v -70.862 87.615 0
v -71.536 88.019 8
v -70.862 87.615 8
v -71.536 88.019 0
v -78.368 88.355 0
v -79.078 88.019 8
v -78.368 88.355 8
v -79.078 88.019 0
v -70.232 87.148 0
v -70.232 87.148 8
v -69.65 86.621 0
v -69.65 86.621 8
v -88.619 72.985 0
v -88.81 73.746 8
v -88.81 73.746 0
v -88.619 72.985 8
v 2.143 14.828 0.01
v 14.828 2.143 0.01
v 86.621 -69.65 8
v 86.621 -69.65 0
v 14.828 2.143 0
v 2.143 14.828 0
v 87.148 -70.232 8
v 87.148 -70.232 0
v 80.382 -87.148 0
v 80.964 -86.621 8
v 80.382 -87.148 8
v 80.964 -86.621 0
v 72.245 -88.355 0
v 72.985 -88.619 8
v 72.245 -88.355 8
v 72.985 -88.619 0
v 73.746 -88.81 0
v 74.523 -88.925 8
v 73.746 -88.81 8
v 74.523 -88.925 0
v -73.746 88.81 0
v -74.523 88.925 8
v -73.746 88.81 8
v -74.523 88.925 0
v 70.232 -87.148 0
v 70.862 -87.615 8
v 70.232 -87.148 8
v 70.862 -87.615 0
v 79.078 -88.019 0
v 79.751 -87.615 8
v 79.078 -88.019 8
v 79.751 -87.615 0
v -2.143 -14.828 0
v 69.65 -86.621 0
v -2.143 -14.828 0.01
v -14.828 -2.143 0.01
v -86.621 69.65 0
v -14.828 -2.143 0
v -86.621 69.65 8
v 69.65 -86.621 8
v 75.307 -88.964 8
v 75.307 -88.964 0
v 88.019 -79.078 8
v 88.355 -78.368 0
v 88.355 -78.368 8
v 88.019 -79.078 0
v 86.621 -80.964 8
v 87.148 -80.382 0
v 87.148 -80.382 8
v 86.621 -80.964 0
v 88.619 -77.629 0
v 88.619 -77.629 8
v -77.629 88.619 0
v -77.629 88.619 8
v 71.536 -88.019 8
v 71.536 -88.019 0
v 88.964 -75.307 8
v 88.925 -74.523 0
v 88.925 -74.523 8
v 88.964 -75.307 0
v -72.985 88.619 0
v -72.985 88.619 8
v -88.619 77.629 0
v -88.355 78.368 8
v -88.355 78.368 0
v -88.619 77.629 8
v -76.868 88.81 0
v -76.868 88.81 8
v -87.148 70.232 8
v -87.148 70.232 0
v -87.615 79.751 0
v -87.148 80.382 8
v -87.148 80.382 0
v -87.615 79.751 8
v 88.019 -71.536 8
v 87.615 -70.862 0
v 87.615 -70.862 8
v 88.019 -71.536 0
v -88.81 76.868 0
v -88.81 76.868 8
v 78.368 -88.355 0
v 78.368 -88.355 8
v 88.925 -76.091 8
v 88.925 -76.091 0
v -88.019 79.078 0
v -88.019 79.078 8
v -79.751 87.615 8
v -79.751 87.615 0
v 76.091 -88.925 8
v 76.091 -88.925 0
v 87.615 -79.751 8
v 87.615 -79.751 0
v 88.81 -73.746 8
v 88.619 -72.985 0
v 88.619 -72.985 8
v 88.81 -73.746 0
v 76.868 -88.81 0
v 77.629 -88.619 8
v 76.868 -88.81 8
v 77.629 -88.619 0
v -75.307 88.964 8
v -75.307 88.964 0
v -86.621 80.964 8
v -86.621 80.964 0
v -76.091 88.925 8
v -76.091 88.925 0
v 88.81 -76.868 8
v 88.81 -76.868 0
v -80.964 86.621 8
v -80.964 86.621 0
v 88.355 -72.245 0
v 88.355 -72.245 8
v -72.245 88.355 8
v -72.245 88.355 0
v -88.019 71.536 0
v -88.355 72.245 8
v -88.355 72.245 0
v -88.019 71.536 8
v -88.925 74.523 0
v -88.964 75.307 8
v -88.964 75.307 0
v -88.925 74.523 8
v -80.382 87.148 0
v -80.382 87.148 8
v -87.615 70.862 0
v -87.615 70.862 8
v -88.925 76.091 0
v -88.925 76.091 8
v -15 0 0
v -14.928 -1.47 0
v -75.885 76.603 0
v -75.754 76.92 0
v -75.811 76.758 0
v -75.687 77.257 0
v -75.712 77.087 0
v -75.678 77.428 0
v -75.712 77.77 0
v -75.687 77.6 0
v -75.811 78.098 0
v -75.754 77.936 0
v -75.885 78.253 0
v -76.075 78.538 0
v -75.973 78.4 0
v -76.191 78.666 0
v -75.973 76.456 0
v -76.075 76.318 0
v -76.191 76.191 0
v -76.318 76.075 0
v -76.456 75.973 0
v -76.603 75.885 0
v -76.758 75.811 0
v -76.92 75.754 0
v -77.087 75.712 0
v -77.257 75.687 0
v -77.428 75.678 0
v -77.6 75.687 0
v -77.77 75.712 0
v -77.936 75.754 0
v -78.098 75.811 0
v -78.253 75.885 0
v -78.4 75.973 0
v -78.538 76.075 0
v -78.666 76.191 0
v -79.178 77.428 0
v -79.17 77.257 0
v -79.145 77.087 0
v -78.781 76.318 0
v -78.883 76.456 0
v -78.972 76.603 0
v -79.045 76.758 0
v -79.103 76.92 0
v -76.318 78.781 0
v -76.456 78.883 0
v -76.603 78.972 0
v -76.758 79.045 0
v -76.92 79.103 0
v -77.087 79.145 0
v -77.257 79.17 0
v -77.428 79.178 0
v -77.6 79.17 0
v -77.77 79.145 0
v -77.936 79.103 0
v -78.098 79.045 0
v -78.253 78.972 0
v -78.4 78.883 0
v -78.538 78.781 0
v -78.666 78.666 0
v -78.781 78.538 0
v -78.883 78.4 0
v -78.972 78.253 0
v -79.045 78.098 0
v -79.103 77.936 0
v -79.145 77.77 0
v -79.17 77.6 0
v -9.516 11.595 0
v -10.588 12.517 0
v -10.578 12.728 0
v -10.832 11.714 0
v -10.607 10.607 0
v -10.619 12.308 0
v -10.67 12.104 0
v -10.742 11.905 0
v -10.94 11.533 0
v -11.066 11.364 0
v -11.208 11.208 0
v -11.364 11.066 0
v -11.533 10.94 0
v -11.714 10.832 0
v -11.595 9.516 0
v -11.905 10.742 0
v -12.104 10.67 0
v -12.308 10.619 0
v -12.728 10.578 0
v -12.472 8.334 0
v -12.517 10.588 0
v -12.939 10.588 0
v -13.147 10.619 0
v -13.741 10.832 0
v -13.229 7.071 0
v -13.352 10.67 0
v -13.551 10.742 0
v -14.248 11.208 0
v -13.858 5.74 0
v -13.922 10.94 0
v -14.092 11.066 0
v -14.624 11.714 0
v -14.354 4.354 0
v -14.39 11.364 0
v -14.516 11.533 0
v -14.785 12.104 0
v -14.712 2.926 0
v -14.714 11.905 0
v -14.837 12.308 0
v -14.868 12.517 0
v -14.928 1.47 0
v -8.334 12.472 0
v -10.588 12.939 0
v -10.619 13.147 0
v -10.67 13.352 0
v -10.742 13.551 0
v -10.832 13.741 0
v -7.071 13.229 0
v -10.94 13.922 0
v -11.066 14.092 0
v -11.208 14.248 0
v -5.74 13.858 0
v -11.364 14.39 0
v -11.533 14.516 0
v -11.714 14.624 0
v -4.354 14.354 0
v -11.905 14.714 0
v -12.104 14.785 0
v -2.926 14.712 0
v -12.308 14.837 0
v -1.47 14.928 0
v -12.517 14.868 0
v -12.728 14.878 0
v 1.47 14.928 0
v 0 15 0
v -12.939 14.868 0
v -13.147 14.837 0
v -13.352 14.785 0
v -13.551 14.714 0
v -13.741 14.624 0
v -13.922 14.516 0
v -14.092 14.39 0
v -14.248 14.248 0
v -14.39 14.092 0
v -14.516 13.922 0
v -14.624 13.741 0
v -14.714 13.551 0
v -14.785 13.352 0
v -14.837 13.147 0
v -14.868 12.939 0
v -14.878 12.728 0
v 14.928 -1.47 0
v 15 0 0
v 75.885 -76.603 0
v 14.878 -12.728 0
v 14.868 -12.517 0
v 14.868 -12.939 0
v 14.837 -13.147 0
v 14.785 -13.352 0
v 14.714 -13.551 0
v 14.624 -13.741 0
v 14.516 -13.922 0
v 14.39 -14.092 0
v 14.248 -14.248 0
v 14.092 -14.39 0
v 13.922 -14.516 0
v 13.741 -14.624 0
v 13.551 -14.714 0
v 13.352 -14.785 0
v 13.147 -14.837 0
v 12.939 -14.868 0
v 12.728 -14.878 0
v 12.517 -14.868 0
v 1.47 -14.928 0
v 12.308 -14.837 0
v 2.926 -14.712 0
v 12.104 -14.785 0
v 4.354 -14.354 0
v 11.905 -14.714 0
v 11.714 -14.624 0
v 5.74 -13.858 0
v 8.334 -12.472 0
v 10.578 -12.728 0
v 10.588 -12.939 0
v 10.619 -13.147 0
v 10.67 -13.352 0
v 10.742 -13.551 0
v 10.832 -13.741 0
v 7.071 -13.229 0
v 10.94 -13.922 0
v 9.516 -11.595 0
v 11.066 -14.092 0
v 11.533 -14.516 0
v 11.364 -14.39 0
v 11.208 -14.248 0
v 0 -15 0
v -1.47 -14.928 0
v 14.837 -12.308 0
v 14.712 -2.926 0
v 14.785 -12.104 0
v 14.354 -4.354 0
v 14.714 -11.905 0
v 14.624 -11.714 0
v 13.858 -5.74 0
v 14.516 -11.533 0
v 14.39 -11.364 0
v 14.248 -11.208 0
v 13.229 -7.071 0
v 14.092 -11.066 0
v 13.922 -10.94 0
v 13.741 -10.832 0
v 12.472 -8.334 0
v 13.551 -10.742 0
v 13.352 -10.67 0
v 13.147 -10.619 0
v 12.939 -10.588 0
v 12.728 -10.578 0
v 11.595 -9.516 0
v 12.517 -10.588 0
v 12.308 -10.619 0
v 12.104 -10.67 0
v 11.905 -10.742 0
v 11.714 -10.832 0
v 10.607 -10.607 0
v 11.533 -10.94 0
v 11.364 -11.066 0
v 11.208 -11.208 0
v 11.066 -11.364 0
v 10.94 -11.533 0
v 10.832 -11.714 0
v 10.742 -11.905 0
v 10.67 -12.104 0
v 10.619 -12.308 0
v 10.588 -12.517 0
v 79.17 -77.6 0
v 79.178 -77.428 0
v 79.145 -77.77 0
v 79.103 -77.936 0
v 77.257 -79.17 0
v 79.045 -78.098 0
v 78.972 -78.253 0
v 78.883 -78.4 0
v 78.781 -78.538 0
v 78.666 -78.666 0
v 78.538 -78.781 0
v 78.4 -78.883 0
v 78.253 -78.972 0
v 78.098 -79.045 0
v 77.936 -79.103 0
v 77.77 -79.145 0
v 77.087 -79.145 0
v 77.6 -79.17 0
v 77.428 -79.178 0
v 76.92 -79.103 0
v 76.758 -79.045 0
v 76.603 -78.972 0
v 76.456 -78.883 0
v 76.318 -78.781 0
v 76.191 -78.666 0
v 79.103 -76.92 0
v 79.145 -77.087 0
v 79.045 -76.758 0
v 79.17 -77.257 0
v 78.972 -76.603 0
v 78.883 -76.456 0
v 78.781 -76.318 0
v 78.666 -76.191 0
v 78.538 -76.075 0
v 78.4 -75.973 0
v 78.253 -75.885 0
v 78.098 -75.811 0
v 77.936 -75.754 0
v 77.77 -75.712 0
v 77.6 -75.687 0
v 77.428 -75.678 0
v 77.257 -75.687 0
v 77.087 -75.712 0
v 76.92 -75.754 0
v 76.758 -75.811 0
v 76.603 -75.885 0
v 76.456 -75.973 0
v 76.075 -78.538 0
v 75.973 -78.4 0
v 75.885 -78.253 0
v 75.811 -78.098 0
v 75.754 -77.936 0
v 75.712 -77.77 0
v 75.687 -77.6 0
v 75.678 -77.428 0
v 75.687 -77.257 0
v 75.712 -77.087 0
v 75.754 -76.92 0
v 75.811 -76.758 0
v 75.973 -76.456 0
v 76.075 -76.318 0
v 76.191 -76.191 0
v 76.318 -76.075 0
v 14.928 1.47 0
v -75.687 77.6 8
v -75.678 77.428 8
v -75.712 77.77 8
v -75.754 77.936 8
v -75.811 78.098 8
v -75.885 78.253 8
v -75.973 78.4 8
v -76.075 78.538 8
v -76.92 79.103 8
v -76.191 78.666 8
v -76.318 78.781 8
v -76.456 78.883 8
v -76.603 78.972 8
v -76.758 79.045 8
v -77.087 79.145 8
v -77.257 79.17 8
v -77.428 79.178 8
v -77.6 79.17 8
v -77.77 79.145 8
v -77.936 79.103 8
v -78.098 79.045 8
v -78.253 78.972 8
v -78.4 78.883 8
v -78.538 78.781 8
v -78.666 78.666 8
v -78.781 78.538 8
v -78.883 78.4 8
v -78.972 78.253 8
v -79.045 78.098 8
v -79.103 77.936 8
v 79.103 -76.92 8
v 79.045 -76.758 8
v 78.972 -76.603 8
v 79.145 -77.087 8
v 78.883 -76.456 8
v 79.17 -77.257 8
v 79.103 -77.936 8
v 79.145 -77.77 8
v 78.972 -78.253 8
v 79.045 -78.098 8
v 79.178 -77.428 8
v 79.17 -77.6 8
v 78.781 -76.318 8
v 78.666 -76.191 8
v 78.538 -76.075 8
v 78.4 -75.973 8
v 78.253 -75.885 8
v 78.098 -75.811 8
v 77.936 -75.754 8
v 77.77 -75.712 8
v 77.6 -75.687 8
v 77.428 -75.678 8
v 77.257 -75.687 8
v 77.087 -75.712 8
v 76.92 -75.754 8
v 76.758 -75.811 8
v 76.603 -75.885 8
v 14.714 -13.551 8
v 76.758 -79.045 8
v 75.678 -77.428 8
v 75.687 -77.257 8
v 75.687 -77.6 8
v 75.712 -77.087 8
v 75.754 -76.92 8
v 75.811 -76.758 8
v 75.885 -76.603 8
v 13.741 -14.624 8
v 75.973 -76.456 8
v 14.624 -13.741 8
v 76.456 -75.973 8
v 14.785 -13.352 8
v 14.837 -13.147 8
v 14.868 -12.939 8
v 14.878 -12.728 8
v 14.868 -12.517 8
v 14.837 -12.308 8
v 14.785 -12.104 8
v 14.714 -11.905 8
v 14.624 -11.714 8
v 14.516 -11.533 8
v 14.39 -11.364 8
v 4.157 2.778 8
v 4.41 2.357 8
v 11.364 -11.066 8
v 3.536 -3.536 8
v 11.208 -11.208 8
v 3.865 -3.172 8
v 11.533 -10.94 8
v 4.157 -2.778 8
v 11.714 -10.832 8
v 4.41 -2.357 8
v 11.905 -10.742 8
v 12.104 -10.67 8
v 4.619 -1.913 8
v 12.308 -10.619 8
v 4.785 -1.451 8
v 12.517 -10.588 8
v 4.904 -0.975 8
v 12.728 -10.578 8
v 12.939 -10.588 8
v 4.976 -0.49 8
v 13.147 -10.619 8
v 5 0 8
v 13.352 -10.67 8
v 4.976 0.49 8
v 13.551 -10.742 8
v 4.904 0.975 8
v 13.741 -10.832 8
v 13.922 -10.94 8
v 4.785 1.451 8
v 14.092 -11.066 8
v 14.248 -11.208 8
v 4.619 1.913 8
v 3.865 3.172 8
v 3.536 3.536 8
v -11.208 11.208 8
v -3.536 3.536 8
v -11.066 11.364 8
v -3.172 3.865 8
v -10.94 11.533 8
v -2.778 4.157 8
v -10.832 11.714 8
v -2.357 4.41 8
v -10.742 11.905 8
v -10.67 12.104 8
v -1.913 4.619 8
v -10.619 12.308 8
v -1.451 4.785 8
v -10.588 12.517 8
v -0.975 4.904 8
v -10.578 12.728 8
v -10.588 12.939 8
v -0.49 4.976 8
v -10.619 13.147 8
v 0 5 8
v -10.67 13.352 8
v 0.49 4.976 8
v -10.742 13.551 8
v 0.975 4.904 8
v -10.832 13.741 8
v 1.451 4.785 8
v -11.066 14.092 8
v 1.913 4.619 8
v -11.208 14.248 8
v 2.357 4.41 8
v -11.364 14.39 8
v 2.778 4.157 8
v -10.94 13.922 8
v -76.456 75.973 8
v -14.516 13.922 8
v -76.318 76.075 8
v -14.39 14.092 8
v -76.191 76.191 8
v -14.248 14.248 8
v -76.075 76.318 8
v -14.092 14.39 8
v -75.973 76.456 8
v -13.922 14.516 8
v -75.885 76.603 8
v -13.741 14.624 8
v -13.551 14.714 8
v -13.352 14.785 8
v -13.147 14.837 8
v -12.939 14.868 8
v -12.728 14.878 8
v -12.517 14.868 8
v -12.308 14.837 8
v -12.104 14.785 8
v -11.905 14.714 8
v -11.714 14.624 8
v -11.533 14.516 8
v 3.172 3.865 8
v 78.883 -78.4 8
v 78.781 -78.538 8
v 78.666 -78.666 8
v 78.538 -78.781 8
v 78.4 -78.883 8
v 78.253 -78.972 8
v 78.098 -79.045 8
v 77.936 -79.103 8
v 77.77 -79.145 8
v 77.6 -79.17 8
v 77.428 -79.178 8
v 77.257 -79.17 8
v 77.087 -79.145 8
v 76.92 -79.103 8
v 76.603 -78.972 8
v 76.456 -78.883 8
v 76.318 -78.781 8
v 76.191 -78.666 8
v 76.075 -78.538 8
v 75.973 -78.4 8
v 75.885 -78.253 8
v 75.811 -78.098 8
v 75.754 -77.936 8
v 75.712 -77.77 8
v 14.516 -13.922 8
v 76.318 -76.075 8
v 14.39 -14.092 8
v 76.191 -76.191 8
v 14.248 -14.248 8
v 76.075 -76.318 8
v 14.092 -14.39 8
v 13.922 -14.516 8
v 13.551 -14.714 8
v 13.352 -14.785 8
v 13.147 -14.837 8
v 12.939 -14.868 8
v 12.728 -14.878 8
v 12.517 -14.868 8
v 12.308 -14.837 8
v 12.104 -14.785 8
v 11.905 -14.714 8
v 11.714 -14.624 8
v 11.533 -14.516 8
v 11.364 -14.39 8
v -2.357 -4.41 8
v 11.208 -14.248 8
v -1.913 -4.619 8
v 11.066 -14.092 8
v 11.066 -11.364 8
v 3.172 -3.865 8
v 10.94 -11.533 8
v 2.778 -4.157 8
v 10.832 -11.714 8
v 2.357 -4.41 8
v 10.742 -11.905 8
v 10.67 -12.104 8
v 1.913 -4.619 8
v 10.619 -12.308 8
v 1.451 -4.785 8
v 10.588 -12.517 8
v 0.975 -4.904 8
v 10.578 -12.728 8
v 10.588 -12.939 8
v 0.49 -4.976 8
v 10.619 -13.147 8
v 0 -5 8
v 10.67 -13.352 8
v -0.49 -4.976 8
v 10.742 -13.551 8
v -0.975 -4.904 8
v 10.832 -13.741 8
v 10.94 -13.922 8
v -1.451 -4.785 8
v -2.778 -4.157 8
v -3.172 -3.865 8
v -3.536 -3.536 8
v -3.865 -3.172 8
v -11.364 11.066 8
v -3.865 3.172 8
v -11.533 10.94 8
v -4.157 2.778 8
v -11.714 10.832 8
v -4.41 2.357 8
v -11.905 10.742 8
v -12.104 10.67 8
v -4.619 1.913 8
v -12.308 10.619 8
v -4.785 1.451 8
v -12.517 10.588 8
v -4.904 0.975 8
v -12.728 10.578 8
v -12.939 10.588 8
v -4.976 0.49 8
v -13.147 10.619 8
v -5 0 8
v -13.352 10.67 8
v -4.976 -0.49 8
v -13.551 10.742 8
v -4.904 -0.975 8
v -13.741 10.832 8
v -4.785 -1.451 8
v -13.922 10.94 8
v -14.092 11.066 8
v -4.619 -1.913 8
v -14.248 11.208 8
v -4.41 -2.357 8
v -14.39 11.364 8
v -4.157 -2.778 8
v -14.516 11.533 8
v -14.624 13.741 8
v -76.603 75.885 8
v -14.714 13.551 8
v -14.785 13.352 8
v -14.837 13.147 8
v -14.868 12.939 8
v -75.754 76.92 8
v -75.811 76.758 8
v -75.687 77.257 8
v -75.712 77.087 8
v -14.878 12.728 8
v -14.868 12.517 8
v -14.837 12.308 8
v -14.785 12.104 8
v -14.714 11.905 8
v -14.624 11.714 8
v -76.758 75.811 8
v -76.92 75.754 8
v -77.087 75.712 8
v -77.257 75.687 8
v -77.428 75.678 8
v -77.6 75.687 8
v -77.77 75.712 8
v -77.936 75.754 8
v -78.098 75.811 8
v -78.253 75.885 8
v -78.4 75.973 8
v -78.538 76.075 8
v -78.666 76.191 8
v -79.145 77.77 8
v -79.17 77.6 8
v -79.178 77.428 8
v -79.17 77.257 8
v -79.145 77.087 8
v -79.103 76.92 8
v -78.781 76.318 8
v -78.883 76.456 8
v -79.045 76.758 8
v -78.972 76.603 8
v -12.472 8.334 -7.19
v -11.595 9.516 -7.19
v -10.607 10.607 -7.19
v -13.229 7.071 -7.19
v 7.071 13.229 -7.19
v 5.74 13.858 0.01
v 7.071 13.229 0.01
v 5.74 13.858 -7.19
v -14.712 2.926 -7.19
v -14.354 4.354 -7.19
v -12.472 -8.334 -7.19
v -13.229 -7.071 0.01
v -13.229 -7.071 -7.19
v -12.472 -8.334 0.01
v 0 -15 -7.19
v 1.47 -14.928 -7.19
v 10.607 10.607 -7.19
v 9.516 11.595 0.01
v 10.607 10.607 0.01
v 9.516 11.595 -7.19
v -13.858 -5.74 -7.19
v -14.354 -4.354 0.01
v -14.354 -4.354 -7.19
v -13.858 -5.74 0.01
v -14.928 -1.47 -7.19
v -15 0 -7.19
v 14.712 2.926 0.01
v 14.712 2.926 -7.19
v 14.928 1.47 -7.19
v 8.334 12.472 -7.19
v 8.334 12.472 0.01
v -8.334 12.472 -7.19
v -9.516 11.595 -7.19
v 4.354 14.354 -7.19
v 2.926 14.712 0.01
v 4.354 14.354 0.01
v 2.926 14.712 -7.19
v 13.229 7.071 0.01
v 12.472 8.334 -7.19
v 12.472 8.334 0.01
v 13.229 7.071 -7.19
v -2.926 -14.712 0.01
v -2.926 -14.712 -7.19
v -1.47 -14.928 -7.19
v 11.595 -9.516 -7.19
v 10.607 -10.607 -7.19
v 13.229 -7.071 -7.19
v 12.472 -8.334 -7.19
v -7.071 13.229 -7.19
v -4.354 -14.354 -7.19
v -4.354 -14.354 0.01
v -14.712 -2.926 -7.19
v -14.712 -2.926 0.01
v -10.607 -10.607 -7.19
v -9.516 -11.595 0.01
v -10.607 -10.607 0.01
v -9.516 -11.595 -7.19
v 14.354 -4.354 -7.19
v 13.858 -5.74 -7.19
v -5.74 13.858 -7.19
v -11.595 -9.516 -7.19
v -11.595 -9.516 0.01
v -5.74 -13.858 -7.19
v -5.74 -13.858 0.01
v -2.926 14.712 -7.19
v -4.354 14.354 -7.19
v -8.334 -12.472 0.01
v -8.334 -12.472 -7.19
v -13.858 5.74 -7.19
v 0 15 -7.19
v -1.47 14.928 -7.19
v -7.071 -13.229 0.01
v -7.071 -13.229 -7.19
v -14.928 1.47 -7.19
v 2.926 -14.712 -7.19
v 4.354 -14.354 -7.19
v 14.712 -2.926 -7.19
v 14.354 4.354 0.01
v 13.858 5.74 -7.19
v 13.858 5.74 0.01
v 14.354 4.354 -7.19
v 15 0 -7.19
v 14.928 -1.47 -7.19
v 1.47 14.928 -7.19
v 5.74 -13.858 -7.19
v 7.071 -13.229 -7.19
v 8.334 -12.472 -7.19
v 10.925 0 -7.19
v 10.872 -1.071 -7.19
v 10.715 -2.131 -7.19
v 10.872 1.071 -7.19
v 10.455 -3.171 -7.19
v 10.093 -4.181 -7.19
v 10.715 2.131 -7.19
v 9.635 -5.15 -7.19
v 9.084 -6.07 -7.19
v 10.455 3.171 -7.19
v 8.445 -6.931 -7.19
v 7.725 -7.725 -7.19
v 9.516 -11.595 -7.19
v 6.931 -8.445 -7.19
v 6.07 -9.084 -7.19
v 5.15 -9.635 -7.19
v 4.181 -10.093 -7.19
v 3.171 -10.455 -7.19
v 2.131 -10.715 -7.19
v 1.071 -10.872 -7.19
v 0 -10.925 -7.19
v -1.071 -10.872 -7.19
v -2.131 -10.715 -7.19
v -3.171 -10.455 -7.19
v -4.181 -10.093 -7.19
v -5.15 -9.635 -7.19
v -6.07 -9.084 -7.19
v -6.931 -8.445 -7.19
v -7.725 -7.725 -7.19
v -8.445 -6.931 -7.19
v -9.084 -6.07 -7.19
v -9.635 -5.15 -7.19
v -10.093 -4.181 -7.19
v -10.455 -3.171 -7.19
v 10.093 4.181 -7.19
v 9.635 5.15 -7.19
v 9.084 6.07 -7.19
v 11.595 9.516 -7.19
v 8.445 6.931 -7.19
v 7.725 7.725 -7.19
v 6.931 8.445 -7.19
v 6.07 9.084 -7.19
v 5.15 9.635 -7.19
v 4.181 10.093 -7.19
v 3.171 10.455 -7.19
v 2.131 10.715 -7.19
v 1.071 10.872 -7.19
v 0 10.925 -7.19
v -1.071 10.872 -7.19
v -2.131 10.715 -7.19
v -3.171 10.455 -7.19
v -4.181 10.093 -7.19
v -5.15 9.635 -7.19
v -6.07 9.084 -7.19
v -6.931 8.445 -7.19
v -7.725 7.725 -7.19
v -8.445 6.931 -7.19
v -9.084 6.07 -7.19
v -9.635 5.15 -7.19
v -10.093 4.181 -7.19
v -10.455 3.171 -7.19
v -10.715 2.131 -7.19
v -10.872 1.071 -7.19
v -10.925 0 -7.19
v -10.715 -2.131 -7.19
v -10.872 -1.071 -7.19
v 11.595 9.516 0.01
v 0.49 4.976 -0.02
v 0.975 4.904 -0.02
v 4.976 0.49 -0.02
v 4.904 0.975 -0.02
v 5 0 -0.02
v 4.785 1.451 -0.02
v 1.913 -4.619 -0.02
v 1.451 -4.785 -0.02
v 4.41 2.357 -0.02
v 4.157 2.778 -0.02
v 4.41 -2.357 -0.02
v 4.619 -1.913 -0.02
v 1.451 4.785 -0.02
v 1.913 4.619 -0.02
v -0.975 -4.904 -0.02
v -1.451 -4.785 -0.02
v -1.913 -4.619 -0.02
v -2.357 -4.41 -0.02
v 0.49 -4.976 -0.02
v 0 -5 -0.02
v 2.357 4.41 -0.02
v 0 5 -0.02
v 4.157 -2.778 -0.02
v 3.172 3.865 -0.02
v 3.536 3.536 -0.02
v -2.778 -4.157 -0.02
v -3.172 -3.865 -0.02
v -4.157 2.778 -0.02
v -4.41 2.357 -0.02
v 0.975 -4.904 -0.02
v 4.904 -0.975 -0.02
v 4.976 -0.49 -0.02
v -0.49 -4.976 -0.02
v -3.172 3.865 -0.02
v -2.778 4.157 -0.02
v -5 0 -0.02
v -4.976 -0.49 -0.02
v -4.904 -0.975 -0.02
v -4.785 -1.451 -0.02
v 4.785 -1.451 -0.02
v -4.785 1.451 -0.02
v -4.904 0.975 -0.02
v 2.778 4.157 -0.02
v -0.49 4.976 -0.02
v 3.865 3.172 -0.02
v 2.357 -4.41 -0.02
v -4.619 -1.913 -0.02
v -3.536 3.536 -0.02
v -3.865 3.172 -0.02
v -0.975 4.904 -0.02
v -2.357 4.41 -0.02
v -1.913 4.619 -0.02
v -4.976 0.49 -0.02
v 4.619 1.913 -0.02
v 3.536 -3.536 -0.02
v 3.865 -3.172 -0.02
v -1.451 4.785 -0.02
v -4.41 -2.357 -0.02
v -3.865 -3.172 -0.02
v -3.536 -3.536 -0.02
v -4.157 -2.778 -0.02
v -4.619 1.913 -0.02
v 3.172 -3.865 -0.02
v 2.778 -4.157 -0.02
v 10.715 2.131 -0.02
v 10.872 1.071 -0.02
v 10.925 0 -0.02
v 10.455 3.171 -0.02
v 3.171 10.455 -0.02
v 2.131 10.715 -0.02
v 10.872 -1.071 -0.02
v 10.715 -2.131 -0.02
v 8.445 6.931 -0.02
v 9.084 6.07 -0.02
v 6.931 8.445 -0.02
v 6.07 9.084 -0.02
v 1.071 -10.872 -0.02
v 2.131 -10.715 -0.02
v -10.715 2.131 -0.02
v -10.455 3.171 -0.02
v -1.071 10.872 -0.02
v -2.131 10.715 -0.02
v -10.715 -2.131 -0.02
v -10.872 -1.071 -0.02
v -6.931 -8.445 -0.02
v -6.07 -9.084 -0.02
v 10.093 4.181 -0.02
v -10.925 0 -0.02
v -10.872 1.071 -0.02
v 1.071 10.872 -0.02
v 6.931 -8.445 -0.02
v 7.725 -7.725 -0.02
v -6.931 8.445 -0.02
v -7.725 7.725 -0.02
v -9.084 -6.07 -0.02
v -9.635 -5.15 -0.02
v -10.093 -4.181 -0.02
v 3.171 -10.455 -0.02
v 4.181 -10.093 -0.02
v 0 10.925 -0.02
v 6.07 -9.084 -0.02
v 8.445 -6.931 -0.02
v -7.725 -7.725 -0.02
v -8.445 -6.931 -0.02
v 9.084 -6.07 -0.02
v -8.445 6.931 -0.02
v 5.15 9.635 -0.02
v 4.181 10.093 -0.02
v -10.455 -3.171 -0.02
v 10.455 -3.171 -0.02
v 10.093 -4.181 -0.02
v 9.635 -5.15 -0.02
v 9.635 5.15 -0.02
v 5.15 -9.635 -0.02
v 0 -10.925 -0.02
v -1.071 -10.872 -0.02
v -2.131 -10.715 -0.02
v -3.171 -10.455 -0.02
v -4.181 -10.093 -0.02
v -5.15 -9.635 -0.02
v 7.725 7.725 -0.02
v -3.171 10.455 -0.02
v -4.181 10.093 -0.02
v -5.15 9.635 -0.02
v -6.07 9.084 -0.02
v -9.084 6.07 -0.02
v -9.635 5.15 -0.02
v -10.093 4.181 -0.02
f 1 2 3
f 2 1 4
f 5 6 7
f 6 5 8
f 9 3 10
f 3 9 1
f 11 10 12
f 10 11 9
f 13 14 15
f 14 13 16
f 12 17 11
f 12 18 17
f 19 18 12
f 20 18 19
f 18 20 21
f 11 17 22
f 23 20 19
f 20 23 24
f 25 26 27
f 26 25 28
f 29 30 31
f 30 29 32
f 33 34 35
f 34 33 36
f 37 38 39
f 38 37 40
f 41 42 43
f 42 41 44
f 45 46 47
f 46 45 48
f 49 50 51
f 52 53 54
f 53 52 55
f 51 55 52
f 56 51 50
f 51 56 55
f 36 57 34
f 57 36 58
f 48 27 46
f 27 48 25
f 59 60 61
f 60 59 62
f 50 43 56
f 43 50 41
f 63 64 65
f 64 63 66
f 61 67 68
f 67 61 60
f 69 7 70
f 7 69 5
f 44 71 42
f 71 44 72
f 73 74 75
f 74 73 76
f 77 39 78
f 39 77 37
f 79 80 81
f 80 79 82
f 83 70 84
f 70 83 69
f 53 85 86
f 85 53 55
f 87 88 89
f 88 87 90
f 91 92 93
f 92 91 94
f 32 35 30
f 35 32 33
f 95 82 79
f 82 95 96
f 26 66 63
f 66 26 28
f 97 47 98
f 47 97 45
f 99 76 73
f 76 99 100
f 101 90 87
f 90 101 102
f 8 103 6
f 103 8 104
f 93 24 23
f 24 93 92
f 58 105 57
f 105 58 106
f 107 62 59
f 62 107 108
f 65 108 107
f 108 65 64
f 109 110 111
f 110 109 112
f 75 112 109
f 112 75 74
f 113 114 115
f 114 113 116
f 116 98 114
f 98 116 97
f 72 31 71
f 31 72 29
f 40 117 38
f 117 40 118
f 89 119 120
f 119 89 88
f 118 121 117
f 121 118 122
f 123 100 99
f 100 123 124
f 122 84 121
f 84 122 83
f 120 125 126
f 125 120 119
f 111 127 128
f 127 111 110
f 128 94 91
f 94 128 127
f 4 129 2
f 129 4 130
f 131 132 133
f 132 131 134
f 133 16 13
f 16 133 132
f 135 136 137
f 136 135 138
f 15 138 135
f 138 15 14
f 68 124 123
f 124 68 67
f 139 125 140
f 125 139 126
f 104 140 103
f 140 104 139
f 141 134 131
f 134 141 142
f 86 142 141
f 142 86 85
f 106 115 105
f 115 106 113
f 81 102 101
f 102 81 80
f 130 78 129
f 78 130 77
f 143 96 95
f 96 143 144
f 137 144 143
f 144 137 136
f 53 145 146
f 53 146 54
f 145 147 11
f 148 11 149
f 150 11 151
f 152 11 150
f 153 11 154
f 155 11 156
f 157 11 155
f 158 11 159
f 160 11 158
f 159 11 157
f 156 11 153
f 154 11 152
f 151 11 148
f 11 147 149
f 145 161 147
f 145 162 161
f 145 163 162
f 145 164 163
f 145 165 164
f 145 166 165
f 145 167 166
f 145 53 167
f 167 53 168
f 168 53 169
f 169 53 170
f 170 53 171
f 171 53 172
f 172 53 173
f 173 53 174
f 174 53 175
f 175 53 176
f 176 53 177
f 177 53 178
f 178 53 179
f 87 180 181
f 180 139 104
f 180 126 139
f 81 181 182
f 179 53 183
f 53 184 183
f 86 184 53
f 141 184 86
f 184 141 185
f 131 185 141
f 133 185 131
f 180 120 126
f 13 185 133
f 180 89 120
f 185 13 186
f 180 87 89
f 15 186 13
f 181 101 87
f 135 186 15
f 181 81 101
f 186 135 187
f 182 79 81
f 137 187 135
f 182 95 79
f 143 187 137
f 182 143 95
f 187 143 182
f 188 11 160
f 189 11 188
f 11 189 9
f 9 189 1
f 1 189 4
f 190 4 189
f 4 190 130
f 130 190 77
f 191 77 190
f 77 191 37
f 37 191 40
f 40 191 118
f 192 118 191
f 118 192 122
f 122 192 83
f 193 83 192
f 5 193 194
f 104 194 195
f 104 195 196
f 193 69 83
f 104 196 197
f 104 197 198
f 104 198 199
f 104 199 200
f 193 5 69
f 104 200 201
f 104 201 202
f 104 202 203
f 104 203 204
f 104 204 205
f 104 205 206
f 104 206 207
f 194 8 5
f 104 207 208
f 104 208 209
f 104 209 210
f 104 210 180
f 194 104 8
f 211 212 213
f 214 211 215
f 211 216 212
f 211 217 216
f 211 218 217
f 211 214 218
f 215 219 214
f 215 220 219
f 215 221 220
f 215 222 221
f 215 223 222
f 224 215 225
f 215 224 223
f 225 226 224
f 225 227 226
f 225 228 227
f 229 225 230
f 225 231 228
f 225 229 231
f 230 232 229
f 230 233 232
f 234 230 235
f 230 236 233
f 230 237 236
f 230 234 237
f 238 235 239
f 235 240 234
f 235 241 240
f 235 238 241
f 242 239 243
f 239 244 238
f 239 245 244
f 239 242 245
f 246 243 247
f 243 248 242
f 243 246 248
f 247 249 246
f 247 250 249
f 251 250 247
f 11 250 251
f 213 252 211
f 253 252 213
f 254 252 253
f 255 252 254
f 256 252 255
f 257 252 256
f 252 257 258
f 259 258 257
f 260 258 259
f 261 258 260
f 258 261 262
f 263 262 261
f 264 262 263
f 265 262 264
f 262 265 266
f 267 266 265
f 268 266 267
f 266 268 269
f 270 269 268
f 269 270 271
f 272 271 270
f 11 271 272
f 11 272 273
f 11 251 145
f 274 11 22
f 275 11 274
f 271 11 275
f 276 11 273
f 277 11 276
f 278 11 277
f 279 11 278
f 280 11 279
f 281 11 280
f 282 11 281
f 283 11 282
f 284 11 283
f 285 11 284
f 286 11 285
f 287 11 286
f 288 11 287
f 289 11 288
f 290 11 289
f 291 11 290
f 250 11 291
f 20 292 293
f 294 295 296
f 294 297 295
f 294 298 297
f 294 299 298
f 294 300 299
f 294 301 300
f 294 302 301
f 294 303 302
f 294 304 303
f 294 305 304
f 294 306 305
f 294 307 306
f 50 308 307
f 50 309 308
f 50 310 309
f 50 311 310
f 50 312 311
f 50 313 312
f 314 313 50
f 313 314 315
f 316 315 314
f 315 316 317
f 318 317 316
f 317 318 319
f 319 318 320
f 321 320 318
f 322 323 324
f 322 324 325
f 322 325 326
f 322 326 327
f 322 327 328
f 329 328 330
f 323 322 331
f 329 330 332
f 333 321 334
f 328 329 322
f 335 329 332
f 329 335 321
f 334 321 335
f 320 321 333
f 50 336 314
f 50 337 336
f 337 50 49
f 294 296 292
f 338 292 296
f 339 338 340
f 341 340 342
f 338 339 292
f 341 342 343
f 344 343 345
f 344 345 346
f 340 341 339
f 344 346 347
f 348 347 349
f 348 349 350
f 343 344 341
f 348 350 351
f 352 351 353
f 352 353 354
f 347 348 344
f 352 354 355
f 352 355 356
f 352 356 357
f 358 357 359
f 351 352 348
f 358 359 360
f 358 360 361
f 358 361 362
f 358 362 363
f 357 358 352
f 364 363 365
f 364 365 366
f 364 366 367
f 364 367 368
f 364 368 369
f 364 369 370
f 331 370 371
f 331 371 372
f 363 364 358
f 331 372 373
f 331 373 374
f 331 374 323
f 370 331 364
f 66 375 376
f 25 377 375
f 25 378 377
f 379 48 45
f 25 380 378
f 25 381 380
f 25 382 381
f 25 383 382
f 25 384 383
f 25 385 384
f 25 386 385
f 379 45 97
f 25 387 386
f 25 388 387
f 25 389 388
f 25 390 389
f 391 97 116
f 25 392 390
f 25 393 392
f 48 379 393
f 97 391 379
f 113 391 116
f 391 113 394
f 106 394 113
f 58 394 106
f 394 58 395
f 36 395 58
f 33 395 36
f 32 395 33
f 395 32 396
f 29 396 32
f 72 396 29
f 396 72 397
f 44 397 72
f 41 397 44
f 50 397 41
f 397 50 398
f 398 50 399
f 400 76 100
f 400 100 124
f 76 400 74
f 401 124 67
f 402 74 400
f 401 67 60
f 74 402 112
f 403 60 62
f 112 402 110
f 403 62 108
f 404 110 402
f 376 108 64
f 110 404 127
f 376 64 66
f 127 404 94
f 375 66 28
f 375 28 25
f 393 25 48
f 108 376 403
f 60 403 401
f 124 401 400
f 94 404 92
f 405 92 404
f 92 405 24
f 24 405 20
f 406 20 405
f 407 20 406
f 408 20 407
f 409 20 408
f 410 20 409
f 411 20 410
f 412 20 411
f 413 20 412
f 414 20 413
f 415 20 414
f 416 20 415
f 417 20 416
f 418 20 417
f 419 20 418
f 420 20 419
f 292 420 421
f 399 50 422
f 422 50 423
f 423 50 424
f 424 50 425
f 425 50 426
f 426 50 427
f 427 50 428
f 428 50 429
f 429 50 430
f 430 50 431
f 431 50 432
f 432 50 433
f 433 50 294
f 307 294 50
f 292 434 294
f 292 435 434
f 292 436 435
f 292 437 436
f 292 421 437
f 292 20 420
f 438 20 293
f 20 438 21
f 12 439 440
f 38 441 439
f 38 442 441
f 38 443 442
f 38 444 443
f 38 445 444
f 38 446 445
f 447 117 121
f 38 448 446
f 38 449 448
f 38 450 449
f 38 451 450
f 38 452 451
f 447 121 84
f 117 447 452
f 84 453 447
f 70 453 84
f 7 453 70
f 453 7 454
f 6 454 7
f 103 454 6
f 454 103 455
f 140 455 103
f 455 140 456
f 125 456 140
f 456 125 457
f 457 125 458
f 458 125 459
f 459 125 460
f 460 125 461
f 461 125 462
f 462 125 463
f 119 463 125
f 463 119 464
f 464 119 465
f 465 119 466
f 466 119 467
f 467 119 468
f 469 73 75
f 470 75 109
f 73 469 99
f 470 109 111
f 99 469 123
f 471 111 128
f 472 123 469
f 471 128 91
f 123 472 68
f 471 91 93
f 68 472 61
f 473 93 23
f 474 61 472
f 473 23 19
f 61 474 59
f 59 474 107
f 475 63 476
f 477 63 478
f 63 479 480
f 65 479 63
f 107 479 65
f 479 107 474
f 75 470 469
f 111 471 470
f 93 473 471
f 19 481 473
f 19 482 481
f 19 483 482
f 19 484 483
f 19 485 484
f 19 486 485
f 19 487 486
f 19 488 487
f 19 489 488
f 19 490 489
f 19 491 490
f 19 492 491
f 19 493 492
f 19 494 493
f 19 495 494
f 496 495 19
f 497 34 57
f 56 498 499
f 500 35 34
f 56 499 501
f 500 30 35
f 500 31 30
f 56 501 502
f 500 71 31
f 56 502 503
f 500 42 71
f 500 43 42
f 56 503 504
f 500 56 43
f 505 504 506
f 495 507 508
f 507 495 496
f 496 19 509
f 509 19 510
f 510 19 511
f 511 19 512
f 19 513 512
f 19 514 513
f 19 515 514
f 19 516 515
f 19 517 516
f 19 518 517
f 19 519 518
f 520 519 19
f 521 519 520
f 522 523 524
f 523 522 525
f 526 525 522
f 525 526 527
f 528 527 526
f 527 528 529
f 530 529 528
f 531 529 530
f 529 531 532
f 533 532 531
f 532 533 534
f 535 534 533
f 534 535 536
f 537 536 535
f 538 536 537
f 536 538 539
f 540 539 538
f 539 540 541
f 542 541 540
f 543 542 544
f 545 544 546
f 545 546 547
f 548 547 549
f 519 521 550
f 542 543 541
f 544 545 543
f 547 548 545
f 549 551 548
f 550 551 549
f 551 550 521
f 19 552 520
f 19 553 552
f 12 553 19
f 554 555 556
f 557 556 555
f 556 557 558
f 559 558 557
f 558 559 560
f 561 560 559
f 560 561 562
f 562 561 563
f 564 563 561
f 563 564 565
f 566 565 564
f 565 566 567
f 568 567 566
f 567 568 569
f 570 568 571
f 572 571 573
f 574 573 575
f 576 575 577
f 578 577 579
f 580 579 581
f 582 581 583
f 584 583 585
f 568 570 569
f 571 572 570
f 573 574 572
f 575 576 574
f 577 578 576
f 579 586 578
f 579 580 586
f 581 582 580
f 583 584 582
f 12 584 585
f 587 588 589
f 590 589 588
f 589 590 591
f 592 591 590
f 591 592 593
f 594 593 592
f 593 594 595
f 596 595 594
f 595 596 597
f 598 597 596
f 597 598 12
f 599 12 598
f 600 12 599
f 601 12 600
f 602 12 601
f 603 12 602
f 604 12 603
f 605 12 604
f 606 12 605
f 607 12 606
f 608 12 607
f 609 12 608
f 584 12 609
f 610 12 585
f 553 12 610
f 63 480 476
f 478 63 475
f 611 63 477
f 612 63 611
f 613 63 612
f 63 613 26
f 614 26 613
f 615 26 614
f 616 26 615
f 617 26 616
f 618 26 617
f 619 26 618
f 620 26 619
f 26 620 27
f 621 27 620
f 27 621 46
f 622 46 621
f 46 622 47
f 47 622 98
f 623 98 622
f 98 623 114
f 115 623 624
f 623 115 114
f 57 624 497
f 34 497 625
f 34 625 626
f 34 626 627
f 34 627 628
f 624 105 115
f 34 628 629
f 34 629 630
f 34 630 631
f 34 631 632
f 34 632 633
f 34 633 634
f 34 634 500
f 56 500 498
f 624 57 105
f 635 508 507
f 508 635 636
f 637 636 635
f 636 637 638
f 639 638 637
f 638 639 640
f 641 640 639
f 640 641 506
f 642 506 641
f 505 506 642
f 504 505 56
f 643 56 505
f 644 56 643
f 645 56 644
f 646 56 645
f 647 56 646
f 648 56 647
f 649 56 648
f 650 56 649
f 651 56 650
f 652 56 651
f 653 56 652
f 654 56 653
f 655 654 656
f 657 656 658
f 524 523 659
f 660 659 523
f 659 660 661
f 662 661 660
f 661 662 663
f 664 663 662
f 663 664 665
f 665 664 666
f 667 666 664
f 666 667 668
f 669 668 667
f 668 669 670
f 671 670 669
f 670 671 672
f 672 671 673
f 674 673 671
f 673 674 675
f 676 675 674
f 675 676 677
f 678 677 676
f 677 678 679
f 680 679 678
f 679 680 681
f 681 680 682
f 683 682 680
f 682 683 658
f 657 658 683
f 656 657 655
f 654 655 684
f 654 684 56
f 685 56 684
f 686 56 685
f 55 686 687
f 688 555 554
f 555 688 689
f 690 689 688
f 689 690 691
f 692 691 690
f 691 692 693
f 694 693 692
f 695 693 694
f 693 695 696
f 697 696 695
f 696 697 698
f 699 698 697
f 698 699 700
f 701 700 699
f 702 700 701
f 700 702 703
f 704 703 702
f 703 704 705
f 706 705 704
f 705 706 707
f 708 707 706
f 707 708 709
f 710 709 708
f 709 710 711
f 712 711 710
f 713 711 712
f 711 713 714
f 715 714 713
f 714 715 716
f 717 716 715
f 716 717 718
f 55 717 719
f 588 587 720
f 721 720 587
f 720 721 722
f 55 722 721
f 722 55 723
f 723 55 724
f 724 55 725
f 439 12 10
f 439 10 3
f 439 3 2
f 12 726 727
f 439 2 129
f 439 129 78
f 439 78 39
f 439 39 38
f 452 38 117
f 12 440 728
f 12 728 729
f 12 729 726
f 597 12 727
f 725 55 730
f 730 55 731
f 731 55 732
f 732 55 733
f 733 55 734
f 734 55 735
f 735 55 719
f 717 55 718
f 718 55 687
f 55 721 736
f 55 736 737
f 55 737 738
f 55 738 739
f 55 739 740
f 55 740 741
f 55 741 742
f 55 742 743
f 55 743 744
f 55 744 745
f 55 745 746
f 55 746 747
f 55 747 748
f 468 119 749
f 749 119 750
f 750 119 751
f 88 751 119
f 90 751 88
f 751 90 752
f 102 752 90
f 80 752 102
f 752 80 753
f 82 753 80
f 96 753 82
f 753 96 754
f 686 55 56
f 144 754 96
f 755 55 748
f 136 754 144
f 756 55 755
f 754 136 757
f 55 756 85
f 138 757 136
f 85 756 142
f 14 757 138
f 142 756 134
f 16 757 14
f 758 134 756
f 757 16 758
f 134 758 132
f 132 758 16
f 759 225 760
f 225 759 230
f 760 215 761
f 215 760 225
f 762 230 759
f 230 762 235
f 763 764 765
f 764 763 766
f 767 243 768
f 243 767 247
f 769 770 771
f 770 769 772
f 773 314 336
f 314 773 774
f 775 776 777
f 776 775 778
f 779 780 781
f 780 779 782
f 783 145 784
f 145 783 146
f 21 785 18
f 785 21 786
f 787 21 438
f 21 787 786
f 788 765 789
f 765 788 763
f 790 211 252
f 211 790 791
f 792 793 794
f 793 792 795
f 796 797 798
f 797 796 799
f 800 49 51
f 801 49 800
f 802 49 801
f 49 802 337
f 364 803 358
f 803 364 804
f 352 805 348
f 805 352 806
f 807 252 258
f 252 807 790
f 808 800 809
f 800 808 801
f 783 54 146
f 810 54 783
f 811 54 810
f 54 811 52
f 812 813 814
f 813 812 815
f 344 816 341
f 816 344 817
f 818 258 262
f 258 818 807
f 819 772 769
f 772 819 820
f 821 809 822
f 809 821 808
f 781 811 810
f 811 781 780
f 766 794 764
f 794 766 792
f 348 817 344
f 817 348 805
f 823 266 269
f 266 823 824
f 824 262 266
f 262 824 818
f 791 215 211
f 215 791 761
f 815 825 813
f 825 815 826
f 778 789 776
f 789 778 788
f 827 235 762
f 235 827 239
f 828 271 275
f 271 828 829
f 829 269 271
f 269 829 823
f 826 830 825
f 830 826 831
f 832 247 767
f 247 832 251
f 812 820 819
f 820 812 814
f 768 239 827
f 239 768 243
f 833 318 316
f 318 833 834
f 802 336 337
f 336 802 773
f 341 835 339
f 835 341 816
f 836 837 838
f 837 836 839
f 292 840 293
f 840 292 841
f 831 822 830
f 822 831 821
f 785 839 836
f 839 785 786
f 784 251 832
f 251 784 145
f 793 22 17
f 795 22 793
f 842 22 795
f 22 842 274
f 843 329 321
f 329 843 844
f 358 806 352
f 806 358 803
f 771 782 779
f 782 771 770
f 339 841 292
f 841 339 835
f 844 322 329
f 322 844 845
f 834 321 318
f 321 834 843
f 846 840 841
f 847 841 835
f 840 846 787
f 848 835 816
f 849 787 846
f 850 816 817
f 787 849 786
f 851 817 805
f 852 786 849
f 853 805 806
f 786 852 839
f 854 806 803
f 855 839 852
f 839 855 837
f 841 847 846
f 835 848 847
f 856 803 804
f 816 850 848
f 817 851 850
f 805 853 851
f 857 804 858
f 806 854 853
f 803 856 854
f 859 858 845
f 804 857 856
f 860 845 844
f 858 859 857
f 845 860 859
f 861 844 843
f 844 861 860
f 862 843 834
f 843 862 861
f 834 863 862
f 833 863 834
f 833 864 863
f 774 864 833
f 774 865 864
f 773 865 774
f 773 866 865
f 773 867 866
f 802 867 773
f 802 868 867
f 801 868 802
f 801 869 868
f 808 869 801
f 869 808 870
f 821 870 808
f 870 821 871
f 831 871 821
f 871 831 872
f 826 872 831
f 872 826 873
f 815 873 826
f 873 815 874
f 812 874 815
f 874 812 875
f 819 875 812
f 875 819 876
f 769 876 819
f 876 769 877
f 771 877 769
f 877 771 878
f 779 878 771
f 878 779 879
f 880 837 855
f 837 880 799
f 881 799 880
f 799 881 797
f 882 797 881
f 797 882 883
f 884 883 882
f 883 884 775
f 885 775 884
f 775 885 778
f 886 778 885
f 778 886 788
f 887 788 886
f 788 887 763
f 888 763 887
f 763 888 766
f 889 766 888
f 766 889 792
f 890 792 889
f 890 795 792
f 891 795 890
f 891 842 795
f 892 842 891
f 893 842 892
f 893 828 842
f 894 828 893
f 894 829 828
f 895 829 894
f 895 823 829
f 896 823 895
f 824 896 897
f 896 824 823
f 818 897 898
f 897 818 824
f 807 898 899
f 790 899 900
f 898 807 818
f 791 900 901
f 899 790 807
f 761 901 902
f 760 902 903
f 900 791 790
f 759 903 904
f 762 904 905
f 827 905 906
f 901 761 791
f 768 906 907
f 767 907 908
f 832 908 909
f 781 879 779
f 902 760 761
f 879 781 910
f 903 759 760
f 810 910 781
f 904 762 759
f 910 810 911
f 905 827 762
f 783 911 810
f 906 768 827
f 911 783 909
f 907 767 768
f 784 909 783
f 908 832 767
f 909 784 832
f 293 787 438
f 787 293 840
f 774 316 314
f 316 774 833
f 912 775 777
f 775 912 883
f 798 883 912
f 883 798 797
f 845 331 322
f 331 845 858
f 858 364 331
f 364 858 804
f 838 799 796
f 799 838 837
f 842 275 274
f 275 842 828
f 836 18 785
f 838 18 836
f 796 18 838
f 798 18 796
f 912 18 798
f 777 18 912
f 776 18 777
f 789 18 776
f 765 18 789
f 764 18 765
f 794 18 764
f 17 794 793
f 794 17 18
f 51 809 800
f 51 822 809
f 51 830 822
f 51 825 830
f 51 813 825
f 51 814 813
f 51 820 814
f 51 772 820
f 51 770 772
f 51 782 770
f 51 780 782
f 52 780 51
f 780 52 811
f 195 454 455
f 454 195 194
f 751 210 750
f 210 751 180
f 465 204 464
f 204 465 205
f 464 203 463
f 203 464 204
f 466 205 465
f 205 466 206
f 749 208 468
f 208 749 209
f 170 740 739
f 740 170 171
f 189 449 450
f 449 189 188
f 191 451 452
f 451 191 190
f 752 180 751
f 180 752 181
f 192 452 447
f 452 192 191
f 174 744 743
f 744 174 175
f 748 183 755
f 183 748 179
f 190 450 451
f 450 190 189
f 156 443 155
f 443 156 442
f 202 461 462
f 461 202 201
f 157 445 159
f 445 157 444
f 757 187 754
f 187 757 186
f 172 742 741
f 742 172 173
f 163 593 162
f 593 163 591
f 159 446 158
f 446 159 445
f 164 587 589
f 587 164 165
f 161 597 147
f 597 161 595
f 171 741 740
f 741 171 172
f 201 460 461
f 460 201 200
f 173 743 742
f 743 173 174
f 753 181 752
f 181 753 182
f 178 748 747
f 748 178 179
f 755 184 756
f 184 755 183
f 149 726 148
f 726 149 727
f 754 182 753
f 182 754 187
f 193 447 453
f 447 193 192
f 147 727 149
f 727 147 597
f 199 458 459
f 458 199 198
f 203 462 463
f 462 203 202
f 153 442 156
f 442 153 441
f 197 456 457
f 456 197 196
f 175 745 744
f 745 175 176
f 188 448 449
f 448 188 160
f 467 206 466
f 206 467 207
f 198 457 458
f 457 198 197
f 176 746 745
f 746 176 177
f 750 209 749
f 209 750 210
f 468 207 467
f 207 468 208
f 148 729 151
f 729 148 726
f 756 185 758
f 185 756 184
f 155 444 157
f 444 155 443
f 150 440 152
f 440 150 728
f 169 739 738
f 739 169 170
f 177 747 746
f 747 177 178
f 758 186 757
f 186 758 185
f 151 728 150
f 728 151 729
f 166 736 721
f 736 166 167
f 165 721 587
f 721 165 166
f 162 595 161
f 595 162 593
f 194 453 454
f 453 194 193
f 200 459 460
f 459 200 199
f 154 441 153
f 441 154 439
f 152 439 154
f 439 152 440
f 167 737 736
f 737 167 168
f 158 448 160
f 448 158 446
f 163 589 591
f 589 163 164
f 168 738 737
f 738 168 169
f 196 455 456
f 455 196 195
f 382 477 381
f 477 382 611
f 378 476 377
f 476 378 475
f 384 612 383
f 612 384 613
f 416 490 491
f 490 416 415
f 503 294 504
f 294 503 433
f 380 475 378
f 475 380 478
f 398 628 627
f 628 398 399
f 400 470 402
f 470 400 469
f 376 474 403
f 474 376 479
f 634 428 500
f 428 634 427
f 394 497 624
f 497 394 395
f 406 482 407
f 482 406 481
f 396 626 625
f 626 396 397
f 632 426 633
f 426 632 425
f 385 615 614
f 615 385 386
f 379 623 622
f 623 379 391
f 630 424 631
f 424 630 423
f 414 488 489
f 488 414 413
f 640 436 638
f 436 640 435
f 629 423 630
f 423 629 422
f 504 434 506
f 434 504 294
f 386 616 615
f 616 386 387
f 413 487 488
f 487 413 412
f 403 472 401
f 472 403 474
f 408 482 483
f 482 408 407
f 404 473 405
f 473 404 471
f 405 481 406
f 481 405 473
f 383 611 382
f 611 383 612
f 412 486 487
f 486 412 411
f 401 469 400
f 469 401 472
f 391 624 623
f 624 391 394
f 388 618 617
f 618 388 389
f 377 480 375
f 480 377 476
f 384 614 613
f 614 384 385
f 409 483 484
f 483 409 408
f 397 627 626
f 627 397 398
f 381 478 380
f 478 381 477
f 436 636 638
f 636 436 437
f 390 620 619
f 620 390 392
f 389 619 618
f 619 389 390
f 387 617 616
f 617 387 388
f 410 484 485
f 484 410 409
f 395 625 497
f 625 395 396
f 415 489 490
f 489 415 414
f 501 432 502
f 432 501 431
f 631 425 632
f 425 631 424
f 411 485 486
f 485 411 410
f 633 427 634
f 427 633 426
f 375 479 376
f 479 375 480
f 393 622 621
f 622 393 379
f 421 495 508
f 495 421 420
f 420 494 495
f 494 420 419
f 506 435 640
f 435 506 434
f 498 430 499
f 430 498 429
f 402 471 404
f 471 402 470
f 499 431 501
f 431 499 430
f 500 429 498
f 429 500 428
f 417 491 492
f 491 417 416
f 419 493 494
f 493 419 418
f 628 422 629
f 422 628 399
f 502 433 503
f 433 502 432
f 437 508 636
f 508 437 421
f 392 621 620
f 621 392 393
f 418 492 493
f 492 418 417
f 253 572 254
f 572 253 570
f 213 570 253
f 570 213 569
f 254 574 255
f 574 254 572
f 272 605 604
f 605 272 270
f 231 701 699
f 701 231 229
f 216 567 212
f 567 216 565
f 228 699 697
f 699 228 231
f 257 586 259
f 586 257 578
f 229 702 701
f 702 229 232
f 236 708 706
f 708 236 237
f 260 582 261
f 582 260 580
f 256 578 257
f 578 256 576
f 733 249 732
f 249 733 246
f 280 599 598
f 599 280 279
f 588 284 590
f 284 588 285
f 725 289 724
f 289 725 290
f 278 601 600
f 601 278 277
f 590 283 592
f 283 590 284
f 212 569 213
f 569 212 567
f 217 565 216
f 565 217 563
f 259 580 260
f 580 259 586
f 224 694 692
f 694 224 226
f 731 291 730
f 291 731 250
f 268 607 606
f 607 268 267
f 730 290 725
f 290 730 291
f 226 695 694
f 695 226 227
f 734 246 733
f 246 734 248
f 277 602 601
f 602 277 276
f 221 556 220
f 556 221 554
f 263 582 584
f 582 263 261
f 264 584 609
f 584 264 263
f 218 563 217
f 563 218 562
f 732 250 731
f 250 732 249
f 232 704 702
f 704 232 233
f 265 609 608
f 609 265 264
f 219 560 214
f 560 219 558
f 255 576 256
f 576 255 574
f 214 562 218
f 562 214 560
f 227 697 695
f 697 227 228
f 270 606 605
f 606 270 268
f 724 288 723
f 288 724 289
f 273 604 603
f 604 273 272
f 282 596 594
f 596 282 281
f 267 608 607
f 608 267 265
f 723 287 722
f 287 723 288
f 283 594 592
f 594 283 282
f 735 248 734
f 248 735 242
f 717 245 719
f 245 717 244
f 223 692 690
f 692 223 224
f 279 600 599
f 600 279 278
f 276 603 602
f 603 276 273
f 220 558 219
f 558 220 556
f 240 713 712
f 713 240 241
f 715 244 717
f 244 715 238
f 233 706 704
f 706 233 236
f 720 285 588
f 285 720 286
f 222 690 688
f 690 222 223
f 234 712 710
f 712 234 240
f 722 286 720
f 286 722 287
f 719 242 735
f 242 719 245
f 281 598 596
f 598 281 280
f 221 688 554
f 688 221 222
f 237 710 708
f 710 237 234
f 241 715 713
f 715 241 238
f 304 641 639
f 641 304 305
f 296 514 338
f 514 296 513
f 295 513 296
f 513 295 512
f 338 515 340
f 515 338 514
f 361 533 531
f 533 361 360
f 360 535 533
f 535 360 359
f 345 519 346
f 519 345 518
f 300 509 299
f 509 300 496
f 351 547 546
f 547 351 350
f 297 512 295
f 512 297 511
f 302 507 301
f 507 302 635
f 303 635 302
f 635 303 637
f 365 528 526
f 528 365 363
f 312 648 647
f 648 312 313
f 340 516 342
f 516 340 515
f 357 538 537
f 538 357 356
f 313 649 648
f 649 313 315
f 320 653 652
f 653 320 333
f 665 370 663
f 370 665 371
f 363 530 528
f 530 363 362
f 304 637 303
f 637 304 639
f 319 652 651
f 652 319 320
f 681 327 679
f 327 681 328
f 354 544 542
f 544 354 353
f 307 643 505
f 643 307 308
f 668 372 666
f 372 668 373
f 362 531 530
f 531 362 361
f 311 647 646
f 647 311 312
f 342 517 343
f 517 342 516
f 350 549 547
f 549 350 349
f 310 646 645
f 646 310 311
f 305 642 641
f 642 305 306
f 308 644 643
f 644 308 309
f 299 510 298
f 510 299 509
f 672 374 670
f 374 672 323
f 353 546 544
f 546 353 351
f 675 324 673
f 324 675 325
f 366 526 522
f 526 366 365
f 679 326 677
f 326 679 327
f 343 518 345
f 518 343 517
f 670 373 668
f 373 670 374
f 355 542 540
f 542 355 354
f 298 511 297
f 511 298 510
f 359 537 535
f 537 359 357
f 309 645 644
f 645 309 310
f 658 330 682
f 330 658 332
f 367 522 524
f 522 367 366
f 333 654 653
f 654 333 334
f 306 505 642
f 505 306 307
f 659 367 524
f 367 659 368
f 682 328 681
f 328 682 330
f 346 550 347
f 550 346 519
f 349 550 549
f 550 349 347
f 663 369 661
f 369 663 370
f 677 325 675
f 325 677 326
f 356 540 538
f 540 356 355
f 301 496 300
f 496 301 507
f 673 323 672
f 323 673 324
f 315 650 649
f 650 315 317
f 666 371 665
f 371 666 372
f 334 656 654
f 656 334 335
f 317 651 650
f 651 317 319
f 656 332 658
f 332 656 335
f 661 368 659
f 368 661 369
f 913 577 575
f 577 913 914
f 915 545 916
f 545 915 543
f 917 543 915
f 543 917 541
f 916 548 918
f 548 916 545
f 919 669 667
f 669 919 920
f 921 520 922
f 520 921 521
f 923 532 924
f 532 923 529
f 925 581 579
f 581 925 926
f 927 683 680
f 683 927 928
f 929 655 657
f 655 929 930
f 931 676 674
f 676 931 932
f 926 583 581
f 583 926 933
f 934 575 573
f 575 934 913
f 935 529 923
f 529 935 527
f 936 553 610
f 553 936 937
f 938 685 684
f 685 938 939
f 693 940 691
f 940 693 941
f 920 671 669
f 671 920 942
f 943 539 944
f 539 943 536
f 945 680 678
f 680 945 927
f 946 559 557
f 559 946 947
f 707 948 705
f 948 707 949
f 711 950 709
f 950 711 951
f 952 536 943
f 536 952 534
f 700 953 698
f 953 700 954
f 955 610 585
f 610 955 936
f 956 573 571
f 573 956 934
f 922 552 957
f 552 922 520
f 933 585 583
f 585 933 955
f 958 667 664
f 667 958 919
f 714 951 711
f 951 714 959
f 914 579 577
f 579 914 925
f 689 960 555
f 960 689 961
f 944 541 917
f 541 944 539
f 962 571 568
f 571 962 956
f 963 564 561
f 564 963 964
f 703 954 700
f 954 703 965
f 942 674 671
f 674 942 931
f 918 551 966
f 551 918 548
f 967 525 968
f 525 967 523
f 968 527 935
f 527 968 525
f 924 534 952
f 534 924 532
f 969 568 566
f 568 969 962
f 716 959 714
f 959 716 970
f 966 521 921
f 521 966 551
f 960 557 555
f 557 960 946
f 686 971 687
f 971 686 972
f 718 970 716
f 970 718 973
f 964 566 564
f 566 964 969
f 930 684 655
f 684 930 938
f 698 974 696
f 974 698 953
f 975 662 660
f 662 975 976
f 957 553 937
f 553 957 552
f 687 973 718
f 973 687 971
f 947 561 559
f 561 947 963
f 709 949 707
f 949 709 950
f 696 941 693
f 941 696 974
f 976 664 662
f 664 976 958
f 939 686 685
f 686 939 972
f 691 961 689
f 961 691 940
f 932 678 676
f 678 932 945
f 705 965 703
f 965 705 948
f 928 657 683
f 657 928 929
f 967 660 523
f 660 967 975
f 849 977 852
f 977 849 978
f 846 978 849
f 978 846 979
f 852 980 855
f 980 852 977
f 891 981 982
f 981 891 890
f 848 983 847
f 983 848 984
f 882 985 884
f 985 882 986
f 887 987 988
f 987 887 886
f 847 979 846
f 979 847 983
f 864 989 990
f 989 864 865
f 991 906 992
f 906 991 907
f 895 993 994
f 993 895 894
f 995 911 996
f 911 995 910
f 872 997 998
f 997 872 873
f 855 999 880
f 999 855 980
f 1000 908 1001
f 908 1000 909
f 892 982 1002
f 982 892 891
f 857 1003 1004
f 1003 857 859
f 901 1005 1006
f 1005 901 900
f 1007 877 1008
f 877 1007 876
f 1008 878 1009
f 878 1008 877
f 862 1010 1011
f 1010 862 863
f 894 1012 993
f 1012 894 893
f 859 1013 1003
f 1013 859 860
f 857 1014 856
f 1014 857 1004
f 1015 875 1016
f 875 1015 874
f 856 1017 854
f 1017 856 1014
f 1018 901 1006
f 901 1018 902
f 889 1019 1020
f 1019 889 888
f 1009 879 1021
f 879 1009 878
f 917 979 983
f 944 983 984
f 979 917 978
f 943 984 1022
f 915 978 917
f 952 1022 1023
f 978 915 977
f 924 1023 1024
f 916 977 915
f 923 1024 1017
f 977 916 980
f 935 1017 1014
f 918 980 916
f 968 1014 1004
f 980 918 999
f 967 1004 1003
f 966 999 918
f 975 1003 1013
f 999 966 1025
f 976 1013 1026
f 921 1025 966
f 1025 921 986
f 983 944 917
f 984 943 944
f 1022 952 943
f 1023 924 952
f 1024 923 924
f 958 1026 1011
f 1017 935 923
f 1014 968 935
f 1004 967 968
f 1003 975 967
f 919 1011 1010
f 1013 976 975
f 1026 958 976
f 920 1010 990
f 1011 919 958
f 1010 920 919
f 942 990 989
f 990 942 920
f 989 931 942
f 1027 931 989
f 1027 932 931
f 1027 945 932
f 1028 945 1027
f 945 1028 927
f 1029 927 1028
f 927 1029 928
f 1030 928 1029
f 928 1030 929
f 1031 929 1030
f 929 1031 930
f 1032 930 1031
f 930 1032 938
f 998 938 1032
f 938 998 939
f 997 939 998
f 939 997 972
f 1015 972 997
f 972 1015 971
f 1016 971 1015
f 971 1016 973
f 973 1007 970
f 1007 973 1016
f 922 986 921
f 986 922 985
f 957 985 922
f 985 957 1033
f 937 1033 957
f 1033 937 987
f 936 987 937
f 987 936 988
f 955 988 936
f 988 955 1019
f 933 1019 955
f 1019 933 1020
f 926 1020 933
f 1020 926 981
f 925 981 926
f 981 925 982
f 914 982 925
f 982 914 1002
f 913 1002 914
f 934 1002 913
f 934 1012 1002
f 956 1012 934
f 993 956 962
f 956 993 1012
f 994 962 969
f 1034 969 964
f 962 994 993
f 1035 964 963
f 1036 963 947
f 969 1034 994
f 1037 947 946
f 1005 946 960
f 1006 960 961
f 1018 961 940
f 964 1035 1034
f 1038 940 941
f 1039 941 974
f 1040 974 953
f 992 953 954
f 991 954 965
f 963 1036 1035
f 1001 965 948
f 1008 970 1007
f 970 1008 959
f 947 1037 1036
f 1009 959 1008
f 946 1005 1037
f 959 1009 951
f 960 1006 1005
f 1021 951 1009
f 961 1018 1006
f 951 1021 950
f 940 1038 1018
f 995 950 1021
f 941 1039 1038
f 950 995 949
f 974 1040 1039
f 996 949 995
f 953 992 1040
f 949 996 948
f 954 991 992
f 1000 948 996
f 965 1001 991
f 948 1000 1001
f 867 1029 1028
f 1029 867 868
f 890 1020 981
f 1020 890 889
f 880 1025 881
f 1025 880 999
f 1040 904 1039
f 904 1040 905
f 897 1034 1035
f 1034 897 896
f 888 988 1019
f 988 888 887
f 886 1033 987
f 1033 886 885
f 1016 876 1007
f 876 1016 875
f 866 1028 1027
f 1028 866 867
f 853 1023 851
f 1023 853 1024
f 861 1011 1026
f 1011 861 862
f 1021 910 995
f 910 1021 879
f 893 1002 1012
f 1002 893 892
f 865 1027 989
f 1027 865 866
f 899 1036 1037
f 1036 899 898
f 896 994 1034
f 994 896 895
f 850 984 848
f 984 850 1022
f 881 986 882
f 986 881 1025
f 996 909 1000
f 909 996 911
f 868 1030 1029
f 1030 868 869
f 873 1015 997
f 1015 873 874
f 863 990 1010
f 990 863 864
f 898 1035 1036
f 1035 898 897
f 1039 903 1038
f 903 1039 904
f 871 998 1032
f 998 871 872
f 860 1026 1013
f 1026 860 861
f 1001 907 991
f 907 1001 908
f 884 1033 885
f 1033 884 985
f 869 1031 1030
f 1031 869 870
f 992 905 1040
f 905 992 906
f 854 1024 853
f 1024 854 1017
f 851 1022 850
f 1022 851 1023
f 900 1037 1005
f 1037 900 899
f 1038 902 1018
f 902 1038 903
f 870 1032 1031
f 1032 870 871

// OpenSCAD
// Gen-CU — rear BEARING BRIDGE (bar endbell, 2026-10-10): a 608 boss on a 24 mm wide bar that spans the
// two frame rods at 135 deg and 135+180 deg (R = flange_bolt_r). The front bridge uses the rods at 45/225 deg, the rear
// bridge the rods at 135/315 deg, so the two bridges cross at 90 deg and the stator is held at 4 points.
// A bar instead of a full disc is what lets this big-ring kit fit ONE 410 mm plate. Print flat face DOWN (boss up, no supports).
// Brace holes (temporary M4 jack rods, R = brace_r) sit on the bar axis.
include <parameters.scad>;
$fn = 64;
bar_w = 24;
bar_len = 2 * (flange_bolt_r + 9);
module bar_2d() { offset(r=8) offset(delta=-8) square([bar_len, bar_w], center=true); }
difference() {
    rotate([0, 0, 135]) union() {
        linear_extrude(endbell_thick) bar_2d();
        translate([0, 0, -bearing_h + 0.01]) cylinder(d=30, h=bearing_h);
    }
    translate([0, 0, -bearing_h - 0.1]) cylinder(d=endbell_shaft_clear, h=50);
    translate([0, 0, -bearing_h - 0.02]) cylinder(d=bearing_d, h=bearing_h);
    for (s = [0, 180]) rotate([0, 0, 135 + s]) translate([flange_bolt_r, 0, -20]) cylinder(d=m3_clear, h=60);
    for (a = brace_angles) translate([brace_r*cos(a), brace_r*sin(a), -20]) cylinder(d=brace_d, h=50);
}
